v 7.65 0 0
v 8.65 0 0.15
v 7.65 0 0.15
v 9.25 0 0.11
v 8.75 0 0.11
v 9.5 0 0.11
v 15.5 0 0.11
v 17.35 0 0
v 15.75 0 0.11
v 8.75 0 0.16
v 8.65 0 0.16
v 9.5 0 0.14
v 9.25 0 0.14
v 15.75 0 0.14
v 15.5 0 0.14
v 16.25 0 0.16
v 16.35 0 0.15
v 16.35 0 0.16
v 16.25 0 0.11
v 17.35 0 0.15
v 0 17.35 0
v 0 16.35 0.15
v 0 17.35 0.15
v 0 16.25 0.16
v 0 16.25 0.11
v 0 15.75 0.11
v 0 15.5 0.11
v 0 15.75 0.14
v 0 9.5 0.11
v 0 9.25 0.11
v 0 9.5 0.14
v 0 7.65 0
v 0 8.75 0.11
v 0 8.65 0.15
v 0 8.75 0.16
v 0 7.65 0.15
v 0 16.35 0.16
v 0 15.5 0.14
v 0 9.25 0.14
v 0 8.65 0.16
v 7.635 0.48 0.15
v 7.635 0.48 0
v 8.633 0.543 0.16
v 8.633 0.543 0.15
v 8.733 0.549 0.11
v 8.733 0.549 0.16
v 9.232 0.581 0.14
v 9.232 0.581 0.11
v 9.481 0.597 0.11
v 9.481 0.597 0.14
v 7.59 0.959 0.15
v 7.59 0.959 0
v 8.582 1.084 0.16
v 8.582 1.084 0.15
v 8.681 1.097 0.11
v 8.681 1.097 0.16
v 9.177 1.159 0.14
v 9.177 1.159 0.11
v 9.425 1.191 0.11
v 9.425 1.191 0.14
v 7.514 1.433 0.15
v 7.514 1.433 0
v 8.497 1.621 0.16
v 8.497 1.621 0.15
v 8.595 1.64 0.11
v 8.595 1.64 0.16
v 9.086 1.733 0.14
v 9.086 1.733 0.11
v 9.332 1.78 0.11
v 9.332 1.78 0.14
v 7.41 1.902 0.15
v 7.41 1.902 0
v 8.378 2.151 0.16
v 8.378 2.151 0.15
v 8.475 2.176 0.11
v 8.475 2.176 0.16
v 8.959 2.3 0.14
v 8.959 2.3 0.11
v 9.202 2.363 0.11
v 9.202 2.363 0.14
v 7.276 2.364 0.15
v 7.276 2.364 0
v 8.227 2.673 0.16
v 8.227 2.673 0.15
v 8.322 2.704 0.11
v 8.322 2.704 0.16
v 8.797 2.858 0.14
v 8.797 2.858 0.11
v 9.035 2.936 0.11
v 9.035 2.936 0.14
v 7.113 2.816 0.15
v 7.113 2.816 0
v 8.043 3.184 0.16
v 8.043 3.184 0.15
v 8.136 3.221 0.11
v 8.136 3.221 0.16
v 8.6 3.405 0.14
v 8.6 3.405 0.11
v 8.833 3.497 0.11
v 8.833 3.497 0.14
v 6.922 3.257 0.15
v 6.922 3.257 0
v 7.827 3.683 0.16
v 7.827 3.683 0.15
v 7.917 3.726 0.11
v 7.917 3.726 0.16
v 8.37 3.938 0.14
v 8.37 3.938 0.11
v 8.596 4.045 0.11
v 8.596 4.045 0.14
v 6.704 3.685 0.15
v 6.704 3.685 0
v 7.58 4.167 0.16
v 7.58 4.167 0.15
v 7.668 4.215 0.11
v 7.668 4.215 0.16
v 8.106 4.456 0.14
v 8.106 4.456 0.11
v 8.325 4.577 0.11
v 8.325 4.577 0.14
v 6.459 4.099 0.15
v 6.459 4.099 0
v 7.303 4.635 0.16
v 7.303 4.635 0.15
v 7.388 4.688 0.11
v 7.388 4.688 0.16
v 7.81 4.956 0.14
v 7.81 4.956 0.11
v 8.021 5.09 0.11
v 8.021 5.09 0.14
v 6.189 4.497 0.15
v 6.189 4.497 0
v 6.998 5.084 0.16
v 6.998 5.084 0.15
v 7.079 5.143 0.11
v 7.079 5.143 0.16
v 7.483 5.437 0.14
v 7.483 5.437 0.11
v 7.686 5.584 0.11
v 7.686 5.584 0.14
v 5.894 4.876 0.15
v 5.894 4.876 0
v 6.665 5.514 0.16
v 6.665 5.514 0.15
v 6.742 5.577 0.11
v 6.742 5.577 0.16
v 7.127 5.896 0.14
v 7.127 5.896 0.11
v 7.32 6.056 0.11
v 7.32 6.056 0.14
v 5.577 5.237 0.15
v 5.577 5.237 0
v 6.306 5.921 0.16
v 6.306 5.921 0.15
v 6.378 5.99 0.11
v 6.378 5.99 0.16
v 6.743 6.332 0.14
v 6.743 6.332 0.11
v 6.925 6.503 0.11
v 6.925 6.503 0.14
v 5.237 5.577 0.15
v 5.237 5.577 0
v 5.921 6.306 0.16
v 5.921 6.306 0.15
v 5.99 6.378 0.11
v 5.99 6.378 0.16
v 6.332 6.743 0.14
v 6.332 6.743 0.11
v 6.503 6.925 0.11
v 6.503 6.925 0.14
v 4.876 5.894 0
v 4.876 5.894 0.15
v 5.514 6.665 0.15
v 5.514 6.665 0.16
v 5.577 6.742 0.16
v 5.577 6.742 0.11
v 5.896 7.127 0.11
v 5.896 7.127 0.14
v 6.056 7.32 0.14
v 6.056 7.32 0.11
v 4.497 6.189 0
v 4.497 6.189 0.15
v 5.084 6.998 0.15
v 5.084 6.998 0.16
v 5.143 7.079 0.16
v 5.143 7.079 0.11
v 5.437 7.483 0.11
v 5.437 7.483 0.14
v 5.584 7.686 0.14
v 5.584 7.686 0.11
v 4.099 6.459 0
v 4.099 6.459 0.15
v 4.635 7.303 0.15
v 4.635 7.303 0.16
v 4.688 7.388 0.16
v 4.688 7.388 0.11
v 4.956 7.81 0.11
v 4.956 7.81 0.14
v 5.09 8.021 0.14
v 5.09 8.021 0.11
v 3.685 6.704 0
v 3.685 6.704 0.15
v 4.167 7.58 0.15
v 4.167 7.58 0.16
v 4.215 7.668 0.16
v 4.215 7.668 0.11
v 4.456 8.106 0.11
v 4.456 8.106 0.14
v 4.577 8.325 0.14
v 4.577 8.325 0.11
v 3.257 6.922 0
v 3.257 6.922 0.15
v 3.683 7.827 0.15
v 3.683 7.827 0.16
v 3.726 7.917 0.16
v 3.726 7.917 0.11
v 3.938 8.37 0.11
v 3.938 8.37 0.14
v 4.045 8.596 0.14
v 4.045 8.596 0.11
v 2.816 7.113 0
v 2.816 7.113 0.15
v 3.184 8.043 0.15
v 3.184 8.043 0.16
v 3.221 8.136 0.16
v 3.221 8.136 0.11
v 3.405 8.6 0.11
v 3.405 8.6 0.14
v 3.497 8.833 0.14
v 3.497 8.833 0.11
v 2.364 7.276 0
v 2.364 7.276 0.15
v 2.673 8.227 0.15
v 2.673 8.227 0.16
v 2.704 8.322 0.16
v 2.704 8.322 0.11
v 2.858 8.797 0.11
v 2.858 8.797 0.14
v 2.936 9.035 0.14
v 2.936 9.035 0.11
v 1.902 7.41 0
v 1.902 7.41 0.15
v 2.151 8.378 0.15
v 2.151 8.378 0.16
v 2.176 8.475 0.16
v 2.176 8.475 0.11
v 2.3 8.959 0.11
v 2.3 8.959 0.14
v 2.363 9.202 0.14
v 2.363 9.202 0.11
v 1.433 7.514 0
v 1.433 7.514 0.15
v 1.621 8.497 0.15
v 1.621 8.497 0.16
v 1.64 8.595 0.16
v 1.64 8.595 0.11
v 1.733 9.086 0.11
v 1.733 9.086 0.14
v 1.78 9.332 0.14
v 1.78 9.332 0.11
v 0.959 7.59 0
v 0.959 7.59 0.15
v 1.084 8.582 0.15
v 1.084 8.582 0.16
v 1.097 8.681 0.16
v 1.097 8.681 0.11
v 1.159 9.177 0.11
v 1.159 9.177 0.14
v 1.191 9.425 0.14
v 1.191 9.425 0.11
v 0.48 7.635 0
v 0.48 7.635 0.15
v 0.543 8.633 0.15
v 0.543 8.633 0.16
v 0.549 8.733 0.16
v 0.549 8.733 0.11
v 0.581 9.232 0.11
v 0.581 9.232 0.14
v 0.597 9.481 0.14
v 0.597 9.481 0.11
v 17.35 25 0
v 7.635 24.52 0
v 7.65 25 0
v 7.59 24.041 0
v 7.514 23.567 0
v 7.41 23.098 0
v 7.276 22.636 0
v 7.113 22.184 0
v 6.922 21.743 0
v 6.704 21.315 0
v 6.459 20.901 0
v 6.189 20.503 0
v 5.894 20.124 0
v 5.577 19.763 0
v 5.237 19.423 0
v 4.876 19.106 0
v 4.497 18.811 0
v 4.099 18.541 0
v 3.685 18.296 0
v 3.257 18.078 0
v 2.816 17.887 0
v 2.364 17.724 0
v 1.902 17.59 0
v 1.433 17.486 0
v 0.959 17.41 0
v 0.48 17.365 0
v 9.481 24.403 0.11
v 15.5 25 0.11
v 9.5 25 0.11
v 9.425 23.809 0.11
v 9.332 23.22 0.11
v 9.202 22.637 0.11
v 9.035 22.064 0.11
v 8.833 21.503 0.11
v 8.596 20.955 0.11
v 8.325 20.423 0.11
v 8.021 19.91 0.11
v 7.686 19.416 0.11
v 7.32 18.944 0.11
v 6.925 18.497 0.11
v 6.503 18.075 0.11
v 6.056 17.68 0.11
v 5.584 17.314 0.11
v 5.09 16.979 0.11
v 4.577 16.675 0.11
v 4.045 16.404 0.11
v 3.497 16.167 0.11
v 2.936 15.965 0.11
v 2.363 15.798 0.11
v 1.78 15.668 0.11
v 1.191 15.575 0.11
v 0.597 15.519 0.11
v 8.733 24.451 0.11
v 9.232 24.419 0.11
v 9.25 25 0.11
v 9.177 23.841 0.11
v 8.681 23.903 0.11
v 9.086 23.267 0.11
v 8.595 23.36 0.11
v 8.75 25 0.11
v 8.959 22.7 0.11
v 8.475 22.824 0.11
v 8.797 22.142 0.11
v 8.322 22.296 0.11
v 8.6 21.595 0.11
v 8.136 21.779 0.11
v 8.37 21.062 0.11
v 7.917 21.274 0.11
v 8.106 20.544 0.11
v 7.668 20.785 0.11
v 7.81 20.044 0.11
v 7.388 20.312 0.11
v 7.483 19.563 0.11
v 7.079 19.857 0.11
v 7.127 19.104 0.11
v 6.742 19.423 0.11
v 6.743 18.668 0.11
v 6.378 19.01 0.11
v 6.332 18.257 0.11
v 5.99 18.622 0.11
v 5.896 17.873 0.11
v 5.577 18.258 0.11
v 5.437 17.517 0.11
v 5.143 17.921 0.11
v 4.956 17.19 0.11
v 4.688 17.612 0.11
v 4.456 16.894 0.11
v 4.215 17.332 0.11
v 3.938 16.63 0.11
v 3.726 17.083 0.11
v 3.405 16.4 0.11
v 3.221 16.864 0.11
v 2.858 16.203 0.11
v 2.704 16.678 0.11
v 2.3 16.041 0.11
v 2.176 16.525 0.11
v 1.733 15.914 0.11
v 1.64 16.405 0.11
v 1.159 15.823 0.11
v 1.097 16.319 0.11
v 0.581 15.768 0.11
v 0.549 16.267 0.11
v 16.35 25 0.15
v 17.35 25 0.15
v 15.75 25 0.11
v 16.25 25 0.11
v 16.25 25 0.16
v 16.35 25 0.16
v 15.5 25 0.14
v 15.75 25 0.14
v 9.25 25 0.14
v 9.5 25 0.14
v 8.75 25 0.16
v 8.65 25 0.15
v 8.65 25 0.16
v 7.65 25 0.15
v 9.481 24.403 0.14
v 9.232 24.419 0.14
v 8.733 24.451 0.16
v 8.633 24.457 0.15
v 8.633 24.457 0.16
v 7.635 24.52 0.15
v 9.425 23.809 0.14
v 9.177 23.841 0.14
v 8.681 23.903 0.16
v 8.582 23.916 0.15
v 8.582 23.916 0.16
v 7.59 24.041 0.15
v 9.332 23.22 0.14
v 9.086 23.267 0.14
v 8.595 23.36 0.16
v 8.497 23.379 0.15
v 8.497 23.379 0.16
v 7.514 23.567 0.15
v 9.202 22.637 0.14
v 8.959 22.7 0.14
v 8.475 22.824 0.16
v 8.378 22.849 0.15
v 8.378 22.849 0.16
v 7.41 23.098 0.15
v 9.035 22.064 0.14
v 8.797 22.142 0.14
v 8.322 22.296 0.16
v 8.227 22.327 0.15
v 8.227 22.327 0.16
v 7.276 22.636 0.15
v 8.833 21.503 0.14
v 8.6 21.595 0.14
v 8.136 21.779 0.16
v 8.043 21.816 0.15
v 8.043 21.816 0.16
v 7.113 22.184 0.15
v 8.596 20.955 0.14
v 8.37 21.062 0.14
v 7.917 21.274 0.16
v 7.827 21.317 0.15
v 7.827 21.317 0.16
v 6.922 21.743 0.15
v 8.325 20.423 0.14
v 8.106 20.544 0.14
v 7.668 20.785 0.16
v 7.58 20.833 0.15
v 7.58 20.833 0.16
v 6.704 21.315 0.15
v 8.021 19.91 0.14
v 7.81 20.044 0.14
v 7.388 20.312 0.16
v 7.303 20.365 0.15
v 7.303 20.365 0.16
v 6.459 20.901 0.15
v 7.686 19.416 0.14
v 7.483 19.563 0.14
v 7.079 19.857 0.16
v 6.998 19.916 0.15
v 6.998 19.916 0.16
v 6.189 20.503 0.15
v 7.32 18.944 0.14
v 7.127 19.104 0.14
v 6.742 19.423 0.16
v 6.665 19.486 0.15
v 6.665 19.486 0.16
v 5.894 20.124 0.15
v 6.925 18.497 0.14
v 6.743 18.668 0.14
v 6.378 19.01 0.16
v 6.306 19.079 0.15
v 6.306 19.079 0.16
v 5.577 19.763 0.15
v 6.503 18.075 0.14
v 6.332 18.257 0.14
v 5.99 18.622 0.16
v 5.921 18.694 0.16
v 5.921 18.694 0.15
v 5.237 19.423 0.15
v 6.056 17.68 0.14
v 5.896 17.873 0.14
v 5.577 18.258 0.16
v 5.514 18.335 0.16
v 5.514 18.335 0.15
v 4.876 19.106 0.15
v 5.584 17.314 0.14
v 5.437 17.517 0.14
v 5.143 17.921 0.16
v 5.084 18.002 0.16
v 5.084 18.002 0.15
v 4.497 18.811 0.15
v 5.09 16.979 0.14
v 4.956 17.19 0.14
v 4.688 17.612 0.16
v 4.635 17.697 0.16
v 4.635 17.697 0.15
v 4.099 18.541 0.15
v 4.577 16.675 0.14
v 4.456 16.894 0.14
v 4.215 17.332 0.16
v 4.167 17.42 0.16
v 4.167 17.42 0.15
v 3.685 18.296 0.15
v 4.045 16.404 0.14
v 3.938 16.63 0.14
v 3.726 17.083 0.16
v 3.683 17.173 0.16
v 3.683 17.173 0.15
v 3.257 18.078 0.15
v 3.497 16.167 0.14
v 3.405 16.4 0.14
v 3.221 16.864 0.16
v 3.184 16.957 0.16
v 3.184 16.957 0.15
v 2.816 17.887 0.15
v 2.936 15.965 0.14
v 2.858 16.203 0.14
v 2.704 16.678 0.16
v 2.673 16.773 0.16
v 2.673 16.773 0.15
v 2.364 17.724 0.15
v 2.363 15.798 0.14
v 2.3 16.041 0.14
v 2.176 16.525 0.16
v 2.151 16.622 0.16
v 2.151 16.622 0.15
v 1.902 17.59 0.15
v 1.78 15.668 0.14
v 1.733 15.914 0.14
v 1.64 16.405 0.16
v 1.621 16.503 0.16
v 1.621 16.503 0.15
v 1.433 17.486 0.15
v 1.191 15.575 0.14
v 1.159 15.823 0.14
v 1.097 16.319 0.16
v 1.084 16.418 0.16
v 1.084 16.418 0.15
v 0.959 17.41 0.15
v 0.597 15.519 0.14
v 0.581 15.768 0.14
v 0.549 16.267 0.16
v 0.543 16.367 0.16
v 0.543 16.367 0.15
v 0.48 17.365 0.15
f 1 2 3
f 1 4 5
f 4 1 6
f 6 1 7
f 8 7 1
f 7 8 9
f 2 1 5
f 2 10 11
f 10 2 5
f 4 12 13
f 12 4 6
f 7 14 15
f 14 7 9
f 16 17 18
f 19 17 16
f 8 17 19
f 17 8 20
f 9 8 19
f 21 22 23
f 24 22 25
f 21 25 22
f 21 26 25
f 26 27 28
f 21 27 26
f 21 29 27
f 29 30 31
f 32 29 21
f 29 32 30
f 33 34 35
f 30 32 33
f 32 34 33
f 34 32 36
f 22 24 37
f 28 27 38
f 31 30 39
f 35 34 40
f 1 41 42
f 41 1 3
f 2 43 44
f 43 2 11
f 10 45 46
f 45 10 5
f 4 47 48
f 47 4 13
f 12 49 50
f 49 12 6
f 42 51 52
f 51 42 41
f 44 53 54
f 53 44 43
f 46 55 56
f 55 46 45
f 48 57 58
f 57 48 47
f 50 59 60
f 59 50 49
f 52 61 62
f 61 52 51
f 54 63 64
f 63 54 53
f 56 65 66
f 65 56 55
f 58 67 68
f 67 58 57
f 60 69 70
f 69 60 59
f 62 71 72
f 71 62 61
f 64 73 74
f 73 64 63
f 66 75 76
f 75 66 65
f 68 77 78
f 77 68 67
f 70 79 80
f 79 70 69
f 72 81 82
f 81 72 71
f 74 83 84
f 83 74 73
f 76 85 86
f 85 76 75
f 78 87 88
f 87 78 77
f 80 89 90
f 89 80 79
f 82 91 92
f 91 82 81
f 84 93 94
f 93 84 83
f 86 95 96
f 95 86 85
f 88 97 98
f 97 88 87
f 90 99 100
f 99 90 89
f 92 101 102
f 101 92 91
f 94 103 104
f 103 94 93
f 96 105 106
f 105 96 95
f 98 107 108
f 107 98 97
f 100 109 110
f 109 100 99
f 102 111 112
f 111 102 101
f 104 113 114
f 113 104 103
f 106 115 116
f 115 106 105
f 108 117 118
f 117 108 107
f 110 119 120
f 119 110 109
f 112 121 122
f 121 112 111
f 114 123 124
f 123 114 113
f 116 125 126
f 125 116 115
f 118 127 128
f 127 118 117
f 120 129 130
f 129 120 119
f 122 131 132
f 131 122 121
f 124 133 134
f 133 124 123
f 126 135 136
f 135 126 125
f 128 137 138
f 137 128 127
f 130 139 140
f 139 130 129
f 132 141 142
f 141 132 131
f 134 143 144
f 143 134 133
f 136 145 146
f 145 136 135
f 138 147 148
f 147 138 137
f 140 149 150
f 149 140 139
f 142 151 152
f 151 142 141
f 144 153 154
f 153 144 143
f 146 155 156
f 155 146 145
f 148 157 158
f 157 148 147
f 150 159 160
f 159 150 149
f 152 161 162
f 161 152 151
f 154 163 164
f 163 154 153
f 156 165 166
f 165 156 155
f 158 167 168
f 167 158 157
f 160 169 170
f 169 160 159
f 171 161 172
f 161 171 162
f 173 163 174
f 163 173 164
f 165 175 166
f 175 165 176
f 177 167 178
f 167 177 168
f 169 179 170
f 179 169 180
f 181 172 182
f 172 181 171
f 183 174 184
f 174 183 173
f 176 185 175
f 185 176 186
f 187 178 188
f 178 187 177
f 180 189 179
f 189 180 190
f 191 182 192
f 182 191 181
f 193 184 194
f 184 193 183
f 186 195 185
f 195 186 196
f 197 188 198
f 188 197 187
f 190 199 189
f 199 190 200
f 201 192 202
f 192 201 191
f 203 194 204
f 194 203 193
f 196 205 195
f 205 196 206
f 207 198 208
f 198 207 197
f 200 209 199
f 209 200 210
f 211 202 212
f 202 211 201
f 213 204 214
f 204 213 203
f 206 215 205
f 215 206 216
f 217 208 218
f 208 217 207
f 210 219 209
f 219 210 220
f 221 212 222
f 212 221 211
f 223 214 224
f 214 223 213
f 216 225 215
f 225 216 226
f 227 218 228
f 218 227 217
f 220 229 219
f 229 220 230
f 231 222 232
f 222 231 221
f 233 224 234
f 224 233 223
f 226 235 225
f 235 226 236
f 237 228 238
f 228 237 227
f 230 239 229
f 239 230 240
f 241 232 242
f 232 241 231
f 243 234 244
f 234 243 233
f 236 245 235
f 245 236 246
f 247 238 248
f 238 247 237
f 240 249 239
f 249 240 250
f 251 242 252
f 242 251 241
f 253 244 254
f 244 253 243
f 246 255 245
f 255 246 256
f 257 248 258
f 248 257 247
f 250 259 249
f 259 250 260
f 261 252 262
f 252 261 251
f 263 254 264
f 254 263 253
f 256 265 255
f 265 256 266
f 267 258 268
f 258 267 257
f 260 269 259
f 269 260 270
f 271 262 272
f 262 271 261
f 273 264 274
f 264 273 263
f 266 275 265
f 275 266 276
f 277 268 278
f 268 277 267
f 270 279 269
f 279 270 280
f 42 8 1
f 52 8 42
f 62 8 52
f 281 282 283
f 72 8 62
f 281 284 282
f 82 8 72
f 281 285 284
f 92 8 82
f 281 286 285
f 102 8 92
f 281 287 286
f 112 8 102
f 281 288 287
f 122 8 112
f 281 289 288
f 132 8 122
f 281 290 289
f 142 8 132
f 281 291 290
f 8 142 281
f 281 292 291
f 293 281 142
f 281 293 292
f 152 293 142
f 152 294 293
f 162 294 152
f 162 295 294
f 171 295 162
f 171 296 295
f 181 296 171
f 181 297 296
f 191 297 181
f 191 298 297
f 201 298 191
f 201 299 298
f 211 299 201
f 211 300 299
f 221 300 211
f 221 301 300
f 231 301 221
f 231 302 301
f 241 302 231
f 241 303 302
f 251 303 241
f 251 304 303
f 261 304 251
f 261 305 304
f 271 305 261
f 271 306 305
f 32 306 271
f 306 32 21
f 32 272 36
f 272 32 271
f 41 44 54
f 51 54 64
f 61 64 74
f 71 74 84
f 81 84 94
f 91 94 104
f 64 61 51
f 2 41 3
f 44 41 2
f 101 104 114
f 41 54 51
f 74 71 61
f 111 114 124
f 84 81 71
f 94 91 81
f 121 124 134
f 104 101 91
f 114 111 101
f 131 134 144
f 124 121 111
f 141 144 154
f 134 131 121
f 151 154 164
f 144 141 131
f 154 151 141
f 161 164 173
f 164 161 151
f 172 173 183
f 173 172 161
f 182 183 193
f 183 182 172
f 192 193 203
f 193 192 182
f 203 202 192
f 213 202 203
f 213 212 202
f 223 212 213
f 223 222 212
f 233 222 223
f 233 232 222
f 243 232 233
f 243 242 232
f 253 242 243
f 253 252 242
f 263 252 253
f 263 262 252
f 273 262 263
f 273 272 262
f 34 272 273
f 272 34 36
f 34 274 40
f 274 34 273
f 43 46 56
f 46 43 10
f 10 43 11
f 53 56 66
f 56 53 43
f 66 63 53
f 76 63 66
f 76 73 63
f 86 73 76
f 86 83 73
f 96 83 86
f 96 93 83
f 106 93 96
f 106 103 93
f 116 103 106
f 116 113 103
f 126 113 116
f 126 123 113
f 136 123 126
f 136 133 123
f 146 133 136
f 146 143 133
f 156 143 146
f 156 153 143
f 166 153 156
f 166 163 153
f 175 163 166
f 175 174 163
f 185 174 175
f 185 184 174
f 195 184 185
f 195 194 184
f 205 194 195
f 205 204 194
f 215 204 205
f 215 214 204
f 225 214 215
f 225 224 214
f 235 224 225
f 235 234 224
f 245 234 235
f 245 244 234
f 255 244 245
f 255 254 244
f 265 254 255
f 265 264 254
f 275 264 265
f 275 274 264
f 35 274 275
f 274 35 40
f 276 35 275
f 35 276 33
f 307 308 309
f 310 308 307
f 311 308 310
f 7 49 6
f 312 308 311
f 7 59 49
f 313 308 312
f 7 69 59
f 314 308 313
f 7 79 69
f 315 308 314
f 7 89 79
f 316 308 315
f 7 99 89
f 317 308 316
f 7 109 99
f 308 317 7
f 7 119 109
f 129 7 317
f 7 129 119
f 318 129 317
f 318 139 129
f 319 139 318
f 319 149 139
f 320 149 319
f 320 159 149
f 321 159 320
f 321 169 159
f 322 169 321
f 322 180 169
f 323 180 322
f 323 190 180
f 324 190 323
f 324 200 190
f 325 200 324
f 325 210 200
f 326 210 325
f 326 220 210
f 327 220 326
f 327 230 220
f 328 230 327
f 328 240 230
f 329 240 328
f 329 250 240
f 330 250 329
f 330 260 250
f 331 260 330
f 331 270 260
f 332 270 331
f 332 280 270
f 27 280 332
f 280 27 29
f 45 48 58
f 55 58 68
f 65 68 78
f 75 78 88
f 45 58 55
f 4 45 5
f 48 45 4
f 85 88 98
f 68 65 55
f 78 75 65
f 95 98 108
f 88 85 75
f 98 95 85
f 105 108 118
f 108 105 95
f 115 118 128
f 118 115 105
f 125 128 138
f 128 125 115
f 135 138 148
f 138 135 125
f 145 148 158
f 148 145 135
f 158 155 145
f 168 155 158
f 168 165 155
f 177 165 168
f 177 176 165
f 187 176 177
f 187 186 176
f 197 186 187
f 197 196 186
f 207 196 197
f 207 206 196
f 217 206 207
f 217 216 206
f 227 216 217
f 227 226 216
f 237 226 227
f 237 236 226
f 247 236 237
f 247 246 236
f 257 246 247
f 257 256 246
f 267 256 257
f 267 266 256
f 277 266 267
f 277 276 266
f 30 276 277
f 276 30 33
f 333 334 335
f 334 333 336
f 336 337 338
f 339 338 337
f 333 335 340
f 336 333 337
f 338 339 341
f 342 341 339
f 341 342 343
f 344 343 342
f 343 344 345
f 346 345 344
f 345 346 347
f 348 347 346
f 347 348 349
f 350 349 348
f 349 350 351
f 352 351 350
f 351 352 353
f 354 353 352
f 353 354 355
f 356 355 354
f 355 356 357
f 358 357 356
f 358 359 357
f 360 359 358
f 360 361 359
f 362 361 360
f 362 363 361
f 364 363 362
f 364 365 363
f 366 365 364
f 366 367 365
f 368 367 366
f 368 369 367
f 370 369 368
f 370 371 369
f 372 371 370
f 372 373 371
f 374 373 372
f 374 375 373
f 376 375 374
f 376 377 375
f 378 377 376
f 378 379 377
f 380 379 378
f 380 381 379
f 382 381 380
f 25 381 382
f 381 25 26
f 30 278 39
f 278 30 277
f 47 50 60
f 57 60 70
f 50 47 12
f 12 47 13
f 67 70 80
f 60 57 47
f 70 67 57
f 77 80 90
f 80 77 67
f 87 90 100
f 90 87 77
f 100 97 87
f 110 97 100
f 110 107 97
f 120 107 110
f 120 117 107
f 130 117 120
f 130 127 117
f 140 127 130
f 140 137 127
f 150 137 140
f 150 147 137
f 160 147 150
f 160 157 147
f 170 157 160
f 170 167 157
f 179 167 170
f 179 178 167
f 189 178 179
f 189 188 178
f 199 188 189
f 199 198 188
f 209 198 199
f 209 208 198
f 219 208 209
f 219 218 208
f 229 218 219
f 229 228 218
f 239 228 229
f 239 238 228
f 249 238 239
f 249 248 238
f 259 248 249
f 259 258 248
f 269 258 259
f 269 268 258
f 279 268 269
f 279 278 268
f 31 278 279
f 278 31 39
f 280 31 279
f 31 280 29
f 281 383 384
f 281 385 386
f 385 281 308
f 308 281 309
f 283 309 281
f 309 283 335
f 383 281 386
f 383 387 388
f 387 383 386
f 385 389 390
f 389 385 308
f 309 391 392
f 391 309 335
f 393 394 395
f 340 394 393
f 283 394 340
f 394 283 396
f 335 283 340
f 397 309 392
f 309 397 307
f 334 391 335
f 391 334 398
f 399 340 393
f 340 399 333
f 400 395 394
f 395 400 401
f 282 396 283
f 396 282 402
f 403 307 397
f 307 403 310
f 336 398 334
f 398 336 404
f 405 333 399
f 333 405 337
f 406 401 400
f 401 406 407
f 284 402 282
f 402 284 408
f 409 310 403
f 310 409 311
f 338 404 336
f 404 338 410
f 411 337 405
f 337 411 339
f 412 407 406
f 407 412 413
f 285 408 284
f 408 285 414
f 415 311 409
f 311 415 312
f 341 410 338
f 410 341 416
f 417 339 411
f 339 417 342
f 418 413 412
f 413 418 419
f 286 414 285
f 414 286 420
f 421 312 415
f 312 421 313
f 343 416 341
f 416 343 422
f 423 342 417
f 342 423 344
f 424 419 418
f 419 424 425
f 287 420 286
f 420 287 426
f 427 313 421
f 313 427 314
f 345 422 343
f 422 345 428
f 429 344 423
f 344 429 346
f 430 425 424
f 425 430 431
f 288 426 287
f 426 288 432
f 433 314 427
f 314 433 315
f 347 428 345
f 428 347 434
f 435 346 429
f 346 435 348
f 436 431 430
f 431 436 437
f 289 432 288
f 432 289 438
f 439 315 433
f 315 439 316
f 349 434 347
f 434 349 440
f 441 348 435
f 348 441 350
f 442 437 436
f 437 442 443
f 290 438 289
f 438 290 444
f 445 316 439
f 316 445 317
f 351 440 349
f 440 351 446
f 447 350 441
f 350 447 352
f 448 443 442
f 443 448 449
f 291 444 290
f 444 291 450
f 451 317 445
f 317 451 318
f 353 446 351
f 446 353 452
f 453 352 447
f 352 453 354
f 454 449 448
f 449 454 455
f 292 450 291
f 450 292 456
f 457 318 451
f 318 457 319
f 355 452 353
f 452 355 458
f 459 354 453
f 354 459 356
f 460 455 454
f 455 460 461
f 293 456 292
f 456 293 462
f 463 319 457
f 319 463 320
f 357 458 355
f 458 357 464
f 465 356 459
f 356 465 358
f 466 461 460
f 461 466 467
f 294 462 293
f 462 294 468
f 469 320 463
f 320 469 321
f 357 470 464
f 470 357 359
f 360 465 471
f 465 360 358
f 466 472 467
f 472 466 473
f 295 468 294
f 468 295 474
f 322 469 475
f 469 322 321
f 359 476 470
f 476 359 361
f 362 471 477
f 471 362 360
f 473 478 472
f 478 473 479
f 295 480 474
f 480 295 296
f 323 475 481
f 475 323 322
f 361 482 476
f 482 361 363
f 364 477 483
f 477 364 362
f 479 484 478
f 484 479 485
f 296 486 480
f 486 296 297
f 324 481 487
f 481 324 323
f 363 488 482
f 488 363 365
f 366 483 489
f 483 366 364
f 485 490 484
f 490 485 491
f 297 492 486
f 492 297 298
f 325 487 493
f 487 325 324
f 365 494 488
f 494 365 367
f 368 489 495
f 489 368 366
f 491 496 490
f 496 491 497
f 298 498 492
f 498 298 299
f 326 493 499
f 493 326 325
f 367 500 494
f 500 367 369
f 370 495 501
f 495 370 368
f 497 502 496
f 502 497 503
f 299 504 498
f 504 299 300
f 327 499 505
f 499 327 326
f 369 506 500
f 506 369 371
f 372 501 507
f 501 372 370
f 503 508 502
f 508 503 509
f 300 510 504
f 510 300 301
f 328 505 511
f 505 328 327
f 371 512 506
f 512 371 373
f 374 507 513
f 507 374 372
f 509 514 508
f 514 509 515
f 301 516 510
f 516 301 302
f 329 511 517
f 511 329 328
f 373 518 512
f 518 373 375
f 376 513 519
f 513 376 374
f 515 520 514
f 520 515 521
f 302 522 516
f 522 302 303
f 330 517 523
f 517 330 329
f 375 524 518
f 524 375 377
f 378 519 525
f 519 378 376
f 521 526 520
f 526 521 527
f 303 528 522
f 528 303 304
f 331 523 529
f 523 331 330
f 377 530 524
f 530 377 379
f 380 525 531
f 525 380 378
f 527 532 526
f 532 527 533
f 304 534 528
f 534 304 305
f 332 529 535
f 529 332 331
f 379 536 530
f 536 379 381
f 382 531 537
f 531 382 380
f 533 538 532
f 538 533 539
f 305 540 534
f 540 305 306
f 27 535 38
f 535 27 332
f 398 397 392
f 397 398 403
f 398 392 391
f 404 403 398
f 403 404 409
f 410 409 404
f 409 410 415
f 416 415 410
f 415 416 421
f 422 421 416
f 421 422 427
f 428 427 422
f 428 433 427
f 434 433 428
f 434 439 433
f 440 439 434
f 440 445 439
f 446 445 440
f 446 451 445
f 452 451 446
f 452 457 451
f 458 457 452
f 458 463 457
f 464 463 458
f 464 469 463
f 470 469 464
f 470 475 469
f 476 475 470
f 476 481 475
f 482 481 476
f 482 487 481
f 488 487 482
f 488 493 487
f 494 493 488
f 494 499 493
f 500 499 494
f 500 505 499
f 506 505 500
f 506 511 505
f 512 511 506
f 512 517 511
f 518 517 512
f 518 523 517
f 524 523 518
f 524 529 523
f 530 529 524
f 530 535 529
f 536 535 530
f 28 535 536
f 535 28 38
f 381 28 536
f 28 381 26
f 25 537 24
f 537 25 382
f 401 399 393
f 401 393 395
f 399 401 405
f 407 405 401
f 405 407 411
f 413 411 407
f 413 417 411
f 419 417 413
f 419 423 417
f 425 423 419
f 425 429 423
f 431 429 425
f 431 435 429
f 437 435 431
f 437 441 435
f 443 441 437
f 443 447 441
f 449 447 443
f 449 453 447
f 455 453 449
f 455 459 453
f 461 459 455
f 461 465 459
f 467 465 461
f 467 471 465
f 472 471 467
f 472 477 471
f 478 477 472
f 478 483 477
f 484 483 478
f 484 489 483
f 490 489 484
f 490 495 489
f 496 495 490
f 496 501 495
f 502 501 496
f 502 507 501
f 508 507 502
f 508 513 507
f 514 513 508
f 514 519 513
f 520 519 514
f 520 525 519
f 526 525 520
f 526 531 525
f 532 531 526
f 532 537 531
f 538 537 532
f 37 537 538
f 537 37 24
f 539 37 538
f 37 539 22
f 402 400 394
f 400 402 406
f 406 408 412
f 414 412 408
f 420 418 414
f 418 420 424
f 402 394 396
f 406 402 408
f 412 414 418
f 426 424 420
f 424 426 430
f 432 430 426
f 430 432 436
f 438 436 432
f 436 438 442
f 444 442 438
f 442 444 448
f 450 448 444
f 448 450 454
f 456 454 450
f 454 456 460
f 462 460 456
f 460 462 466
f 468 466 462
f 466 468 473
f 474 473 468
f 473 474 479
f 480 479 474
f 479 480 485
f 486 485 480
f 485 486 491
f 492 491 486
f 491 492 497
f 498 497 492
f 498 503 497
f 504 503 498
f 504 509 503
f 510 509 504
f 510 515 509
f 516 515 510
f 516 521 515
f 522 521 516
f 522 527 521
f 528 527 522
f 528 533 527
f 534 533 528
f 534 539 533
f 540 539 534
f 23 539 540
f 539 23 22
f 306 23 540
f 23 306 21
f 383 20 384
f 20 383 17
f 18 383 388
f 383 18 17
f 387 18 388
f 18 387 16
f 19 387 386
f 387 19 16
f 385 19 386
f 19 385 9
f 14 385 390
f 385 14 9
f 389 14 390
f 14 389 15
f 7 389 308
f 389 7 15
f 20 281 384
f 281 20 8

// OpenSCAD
//general
meter = 1;
cm = meter / 100;

module generateStreetProfile(total_width, line_width, line_left_amount, line_right_amount, sidewalk_width, sidewalk_right, sidewalk_left, bike_width, bike_left, bike_right, bike_seperator_width, bike_seperator_left_amount, bike_seperator_right_amount, curb_width, curb_left, curb_right, gen_h) {
    // Predefined values (changable)
    meter = 1;
    cm = meter / 100;
    infinite = 1 * total_width;
    sidewalk_height = gen_h * 3 / 4;
    curb_height = sidewalk_height + 1 * cm;
    road_height = curb_height - 5 * cm;
    bike_seperator_height = road_height + 3 * cm;
    bike_height = road_height;

    // Magic calculations
    line_location = 1/2 * total_width - line_width * line_left_amount;
    line_totalwidth = line_width * (line_left_amount + line_right_amount);
    bike_seperator_totalwidth = bike_seperator_width * (bike_seperator_left_amount + bike_seperator_right_amount) + line_totalwidth;
    bike_seperator_location = line_location - bike_seperator_left_amount * bike_seperator_width;
    bike_totalwidth = bike_width * (bike_left + bike_right) + bike_seperator_totalwidth;
    bike_location = bike_seperator_location - bike_width * bike_left;
    curb_totalwidth = (curb_left+curb_right) * curb_width + bike_totalwidth;
    curb_location = bike_location - curb_width * curb_left;
    sidewalk_totalwidth = (sidewalk_right + sidewalk_left) * sidewalk_width + curb_totalwidth;
    sidewalk_location = curb_location - sidewalk_width * sidewalk_left;

    difference() {
        // Generating the raw street from width
        square([total_width, gen_h]);
    
        // Driving lane
        translate([line_location, road_height, 0]) {
            square([line_totalwidth, infinite]);
        }
    
        // Bike separator
        translate([bike_seperator_location, bike_seperator_height, 0]) {
            square([bike_seperator_totalwidth, infinite]);
        }
    
        // Bike lane left / right
        difference() {
            translate([bike_location, bike_height, 0]) {
                square([bike_totalwidth, infinite]);
            }
            // Exclude the bike separator out of the two
            translate([bike_seperator_location, 0, 0]) {
                square([bike_seperator_totalwidth, infinite]);
            }
        }
    
        // Curb
        translate([curb_location, curb_height, 0]) {
            square([curb_totalwidth, infinite]);
        }

        // Sidewalk
        difference() {
            translate([sidewalk_location, sidewalk_height, 0]) {
                square([sidewalk_totalwidth, infinite]);
            }
        
            // Curb
            translate([curb_location, 0, 0]) {
                square([curb_totalwidth, infinite]);
            }
        }
        
        //remove rest
        difference() {
            square([total_width, infinite]);
            translate([sidewalk_location, 0, 0]) {
                square([sidewalk_totalwidth, infinite]);
            }
        }
    }
}



    rotate_extrude(angle=90,convexity = 10, $fn = 100)
    {
        generateStreetProfile(
            25 * meter, // total_width
            3 * meter,  // line_width
            1,          // line_left_amount
            1,          // line_right_amount
            1 * meter,  // sidewalk_width
            0,          // sidewalk_right
            1,          // sidewalk_left
            1/2 * meter, // bike_width
            1,          // bike_left
            0,          // bike_right
            1/4 * meter, // bike_seperator_width
            1,          // bike_seperator_left_amount
            0,          // bike_seperator_right_amount
            10 * cm,     // curb_width
            1,          //curb_left
            0,          //curb_right
            20 * cm     // gen_h
        );
    }
    
    translate([0,25,0])
    rotate_extrude(angle=-90,convexity = 10, $fn = 100)
    {
        generateStreetProfile(
            25 * meter, // total_width
            3 * meter,  // line_width
            1,          // line_left_amount
            1,          // line_right_amount
            1 * meter,  // sidewalk_width
            0,          // sidewalk_right
            1,          // sidewalk_left
            1/2 * meter, // bike_width
            1,          // bike_left
            0,          // bike_right
            1/4 * meter, // bike_seperator_width
            1,          // bike_seperator_left_amount
            0,          // bike_seperator_right_amount
            10 * cm,     // curb_width
            1,          //curb_left
            0,          //curb_right
            20 * cm     // gen_h
        );
    }

    translate([0,25,0])
    rotate([90,0,0])
    linear_extrude(height = 25*meter) {
        // Streight part
        generateStreetProfile(
            25 * meter, // total_width
            3 * meter,  // line_width
            1,          // line_left_amount
            1,          // line_right_amount
            1 * meter,  // sidewalk_width
            1,          // sidewalk_right
            0,          // sidewalk_left
            1/2 * meter, // bike_width
            1,          // bike_left
            1,          // bike_right
            1/4 * meter, // bike_seperator_width
            0,          // bike_seperator_left_amount
            1,          // bike_seperator_right_amount
            10 * cm,     // curb_width
            0,          //curb_left
            1,          //curb_right
            20 * cm     // gen_h
        );
    }
